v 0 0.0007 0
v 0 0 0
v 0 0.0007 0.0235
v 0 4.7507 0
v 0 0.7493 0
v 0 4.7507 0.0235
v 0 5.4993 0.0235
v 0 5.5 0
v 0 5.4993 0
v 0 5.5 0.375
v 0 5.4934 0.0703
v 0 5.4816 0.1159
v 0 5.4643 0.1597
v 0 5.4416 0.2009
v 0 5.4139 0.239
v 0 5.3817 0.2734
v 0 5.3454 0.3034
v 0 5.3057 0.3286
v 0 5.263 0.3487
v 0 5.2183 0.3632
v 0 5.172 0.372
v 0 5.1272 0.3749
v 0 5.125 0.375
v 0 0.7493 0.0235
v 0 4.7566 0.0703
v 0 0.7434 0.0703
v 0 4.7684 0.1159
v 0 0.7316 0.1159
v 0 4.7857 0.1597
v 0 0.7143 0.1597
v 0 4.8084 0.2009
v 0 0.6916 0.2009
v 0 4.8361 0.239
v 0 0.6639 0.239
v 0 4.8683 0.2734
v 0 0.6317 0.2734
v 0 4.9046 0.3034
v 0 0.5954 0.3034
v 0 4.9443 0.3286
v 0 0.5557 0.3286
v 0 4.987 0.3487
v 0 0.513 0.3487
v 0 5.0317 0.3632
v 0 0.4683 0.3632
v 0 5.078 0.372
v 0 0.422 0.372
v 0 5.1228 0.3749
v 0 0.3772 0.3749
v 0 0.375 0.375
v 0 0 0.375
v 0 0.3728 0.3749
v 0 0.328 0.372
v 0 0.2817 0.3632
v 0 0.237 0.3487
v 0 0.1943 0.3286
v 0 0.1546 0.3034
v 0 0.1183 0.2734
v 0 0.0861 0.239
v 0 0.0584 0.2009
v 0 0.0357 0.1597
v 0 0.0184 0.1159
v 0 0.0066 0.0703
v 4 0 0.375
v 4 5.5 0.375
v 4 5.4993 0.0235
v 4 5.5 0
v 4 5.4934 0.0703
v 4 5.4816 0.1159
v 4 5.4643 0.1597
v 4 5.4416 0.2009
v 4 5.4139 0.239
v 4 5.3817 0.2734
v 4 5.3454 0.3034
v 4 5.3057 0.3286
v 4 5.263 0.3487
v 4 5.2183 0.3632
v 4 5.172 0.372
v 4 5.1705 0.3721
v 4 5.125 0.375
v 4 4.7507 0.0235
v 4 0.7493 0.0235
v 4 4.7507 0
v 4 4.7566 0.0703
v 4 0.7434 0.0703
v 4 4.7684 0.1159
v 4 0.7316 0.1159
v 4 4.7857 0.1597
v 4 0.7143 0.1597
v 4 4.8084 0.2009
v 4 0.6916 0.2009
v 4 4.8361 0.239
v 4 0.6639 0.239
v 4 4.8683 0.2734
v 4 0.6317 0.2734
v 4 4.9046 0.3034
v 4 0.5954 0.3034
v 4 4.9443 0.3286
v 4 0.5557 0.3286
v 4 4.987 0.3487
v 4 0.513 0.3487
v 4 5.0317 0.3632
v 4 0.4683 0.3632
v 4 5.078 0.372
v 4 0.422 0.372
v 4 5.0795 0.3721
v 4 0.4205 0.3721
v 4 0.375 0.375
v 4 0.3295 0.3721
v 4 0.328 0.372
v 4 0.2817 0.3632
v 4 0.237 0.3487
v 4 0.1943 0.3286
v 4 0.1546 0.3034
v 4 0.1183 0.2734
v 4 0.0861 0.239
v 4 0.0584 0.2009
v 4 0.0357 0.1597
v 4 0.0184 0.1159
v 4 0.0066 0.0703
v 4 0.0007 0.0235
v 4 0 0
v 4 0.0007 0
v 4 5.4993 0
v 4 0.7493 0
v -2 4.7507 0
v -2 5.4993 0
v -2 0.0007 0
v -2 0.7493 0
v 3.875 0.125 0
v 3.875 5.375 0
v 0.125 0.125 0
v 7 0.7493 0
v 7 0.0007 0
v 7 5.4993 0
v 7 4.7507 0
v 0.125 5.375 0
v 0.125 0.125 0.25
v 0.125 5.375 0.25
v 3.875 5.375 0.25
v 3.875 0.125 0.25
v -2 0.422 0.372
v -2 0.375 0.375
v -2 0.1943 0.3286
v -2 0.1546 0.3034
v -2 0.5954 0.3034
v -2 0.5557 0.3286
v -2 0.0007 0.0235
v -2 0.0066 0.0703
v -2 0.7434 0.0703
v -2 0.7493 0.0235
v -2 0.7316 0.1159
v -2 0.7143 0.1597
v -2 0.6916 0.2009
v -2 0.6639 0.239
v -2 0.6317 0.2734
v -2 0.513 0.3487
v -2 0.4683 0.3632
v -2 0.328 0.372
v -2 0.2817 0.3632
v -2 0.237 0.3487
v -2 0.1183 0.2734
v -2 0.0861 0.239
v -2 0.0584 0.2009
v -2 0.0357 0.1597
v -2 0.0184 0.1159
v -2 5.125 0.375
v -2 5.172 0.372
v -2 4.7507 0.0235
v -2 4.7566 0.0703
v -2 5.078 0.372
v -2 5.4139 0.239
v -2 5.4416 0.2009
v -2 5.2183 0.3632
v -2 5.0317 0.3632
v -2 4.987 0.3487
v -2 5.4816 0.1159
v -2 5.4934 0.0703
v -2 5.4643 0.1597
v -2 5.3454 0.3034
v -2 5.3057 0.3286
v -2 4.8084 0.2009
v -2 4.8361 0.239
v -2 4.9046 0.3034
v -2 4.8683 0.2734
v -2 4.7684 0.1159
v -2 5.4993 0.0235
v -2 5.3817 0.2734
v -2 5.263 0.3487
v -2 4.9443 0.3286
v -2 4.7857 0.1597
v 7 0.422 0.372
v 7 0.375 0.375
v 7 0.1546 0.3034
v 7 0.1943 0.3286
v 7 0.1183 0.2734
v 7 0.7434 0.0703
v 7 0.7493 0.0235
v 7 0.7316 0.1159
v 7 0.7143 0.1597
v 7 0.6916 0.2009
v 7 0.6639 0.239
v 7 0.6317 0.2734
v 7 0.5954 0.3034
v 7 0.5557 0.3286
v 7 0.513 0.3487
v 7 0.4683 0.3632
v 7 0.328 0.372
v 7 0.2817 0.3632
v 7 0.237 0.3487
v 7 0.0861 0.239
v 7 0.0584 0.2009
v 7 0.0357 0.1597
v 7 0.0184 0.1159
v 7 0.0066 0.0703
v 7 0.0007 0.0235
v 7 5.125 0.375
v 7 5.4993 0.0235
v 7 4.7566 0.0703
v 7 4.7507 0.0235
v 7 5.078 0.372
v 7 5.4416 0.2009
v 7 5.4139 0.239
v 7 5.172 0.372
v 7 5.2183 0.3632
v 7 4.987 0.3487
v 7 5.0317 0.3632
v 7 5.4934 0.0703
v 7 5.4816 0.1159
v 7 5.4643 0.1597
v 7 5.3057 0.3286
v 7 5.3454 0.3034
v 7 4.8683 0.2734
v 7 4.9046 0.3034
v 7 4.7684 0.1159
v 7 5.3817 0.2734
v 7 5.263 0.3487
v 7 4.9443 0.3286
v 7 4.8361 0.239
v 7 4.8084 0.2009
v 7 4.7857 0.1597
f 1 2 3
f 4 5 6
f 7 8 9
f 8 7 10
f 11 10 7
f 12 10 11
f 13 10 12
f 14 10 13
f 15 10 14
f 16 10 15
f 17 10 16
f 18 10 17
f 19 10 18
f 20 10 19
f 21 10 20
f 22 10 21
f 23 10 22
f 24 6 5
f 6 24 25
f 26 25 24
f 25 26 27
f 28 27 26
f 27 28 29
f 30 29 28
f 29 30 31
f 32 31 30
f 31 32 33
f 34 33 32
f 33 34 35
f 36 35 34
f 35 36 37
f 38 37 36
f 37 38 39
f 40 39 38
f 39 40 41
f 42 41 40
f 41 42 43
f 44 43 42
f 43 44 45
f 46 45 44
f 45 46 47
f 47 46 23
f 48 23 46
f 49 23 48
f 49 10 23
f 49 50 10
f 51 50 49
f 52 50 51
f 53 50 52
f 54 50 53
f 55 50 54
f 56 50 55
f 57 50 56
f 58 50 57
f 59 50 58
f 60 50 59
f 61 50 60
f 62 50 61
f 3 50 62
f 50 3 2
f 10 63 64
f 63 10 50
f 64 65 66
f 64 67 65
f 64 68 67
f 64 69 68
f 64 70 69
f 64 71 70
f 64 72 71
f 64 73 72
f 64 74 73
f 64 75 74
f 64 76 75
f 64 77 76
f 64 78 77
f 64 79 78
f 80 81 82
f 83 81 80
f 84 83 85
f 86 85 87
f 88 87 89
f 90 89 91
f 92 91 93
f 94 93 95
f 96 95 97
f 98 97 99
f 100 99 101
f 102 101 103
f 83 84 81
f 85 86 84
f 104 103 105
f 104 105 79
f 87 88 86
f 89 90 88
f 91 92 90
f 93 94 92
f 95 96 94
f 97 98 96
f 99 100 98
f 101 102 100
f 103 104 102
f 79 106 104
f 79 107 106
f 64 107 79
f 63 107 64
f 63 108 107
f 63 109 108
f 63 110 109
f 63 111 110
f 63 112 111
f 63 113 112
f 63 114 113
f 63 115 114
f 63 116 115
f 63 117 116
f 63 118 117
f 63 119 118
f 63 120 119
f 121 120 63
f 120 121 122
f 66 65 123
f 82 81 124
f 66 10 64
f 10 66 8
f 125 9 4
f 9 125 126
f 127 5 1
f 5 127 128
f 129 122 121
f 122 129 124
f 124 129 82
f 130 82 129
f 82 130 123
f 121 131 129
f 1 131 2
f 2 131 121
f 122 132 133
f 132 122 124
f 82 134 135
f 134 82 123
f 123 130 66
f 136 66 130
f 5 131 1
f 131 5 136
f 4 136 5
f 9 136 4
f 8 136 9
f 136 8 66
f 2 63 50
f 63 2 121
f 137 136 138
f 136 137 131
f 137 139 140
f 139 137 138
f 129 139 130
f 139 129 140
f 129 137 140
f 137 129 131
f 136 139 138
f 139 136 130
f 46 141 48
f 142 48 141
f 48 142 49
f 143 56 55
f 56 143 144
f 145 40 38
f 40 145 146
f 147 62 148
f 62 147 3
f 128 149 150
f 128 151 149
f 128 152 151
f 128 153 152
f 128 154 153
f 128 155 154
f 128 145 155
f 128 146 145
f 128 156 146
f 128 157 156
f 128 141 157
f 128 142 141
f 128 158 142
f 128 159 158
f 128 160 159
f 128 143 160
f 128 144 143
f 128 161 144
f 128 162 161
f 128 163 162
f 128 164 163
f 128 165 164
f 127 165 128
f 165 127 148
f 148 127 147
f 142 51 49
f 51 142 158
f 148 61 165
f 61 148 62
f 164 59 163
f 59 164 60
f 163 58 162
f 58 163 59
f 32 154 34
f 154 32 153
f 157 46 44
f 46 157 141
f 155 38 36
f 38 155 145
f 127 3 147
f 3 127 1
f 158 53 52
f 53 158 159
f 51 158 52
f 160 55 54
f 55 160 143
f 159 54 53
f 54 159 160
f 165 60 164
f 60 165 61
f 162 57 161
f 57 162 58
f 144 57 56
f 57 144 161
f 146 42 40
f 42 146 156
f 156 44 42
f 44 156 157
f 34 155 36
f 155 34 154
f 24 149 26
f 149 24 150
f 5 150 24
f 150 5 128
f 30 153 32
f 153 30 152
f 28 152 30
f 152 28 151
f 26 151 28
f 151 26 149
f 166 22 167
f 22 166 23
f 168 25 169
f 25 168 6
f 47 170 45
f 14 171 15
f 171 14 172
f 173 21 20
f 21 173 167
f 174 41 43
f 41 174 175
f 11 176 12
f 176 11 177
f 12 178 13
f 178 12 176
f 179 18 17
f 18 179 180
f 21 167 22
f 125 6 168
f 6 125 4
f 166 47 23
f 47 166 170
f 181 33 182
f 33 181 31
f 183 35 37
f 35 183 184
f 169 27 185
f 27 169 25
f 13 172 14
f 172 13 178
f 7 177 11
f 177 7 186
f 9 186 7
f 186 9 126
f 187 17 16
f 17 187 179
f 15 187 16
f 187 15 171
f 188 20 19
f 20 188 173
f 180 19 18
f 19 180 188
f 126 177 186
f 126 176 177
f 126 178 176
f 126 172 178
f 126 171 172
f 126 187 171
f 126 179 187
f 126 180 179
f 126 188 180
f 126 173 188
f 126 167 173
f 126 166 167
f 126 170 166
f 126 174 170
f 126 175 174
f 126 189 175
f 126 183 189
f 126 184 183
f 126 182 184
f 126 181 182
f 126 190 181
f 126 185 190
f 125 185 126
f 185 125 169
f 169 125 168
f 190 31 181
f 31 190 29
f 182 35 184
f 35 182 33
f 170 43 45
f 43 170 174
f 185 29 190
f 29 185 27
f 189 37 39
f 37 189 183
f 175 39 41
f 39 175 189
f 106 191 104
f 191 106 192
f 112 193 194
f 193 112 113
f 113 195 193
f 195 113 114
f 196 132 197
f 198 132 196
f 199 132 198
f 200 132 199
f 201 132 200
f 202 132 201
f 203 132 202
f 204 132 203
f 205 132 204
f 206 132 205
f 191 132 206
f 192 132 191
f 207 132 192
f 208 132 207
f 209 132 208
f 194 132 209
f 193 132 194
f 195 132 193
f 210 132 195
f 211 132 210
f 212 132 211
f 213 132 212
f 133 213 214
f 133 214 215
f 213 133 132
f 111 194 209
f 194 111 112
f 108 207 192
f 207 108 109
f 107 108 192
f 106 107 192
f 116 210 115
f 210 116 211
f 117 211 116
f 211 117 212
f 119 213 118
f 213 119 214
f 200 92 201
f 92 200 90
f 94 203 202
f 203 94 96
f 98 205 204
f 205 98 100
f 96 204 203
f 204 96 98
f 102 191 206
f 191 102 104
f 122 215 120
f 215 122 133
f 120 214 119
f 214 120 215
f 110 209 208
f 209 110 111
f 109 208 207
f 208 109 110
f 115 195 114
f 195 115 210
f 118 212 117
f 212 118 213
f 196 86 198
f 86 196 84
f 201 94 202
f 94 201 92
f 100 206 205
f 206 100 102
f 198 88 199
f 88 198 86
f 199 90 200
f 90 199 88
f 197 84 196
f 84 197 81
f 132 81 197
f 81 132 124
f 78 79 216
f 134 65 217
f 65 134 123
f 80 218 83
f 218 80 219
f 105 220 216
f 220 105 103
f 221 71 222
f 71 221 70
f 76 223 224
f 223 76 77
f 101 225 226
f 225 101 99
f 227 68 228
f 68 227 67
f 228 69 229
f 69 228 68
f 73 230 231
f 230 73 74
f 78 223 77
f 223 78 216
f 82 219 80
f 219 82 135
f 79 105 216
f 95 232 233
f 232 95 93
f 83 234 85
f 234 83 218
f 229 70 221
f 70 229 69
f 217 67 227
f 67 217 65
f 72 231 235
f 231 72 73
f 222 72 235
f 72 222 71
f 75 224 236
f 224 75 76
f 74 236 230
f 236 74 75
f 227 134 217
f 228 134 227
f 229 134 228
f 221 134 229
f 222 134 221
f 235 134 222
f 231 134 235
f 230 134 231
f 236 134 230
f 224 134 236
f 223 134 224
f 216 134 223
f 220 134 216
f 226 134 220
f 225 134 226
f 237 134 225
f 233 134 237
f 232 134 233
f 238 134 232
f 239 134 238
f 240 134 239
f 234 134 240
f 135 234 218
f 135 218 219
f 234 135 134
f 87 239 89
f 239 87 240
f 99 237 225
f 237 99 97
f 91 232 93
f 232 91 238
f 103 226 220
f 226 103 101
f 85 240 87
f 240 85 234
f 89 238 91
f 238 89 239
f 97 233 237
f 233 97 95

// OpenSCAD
difference() {
    union() {
        translate([0.1,0.375,0])
        rotate([180,90,0])  {
            cylinder(h=2.1,r=0.375,$fn=50);
        }

        translate([0.1,5.125,0])
        rotate([180,90,0])  {
            cylinder(h=2.1,r=0.375,$fn=50);
        }

        translate([7,0.375,0])
        rotate([180,90,0])  {
            cylinder(h=3.1,r=0.375,$fn=50);
        }

        translate([7,5.125,0])
        rotate([180,90,0])  {
            cylinder(h=3.1,r=0.375,$fn=50);
        }

        difference() {
            cube([4.0,5.5,0.375]);
            translate([0.125,0.125,0])
                cube([3.75,5.25,0.25]);
        }
    }
    translate([-10,-10,-5]) cube([20,20,5]);
}
